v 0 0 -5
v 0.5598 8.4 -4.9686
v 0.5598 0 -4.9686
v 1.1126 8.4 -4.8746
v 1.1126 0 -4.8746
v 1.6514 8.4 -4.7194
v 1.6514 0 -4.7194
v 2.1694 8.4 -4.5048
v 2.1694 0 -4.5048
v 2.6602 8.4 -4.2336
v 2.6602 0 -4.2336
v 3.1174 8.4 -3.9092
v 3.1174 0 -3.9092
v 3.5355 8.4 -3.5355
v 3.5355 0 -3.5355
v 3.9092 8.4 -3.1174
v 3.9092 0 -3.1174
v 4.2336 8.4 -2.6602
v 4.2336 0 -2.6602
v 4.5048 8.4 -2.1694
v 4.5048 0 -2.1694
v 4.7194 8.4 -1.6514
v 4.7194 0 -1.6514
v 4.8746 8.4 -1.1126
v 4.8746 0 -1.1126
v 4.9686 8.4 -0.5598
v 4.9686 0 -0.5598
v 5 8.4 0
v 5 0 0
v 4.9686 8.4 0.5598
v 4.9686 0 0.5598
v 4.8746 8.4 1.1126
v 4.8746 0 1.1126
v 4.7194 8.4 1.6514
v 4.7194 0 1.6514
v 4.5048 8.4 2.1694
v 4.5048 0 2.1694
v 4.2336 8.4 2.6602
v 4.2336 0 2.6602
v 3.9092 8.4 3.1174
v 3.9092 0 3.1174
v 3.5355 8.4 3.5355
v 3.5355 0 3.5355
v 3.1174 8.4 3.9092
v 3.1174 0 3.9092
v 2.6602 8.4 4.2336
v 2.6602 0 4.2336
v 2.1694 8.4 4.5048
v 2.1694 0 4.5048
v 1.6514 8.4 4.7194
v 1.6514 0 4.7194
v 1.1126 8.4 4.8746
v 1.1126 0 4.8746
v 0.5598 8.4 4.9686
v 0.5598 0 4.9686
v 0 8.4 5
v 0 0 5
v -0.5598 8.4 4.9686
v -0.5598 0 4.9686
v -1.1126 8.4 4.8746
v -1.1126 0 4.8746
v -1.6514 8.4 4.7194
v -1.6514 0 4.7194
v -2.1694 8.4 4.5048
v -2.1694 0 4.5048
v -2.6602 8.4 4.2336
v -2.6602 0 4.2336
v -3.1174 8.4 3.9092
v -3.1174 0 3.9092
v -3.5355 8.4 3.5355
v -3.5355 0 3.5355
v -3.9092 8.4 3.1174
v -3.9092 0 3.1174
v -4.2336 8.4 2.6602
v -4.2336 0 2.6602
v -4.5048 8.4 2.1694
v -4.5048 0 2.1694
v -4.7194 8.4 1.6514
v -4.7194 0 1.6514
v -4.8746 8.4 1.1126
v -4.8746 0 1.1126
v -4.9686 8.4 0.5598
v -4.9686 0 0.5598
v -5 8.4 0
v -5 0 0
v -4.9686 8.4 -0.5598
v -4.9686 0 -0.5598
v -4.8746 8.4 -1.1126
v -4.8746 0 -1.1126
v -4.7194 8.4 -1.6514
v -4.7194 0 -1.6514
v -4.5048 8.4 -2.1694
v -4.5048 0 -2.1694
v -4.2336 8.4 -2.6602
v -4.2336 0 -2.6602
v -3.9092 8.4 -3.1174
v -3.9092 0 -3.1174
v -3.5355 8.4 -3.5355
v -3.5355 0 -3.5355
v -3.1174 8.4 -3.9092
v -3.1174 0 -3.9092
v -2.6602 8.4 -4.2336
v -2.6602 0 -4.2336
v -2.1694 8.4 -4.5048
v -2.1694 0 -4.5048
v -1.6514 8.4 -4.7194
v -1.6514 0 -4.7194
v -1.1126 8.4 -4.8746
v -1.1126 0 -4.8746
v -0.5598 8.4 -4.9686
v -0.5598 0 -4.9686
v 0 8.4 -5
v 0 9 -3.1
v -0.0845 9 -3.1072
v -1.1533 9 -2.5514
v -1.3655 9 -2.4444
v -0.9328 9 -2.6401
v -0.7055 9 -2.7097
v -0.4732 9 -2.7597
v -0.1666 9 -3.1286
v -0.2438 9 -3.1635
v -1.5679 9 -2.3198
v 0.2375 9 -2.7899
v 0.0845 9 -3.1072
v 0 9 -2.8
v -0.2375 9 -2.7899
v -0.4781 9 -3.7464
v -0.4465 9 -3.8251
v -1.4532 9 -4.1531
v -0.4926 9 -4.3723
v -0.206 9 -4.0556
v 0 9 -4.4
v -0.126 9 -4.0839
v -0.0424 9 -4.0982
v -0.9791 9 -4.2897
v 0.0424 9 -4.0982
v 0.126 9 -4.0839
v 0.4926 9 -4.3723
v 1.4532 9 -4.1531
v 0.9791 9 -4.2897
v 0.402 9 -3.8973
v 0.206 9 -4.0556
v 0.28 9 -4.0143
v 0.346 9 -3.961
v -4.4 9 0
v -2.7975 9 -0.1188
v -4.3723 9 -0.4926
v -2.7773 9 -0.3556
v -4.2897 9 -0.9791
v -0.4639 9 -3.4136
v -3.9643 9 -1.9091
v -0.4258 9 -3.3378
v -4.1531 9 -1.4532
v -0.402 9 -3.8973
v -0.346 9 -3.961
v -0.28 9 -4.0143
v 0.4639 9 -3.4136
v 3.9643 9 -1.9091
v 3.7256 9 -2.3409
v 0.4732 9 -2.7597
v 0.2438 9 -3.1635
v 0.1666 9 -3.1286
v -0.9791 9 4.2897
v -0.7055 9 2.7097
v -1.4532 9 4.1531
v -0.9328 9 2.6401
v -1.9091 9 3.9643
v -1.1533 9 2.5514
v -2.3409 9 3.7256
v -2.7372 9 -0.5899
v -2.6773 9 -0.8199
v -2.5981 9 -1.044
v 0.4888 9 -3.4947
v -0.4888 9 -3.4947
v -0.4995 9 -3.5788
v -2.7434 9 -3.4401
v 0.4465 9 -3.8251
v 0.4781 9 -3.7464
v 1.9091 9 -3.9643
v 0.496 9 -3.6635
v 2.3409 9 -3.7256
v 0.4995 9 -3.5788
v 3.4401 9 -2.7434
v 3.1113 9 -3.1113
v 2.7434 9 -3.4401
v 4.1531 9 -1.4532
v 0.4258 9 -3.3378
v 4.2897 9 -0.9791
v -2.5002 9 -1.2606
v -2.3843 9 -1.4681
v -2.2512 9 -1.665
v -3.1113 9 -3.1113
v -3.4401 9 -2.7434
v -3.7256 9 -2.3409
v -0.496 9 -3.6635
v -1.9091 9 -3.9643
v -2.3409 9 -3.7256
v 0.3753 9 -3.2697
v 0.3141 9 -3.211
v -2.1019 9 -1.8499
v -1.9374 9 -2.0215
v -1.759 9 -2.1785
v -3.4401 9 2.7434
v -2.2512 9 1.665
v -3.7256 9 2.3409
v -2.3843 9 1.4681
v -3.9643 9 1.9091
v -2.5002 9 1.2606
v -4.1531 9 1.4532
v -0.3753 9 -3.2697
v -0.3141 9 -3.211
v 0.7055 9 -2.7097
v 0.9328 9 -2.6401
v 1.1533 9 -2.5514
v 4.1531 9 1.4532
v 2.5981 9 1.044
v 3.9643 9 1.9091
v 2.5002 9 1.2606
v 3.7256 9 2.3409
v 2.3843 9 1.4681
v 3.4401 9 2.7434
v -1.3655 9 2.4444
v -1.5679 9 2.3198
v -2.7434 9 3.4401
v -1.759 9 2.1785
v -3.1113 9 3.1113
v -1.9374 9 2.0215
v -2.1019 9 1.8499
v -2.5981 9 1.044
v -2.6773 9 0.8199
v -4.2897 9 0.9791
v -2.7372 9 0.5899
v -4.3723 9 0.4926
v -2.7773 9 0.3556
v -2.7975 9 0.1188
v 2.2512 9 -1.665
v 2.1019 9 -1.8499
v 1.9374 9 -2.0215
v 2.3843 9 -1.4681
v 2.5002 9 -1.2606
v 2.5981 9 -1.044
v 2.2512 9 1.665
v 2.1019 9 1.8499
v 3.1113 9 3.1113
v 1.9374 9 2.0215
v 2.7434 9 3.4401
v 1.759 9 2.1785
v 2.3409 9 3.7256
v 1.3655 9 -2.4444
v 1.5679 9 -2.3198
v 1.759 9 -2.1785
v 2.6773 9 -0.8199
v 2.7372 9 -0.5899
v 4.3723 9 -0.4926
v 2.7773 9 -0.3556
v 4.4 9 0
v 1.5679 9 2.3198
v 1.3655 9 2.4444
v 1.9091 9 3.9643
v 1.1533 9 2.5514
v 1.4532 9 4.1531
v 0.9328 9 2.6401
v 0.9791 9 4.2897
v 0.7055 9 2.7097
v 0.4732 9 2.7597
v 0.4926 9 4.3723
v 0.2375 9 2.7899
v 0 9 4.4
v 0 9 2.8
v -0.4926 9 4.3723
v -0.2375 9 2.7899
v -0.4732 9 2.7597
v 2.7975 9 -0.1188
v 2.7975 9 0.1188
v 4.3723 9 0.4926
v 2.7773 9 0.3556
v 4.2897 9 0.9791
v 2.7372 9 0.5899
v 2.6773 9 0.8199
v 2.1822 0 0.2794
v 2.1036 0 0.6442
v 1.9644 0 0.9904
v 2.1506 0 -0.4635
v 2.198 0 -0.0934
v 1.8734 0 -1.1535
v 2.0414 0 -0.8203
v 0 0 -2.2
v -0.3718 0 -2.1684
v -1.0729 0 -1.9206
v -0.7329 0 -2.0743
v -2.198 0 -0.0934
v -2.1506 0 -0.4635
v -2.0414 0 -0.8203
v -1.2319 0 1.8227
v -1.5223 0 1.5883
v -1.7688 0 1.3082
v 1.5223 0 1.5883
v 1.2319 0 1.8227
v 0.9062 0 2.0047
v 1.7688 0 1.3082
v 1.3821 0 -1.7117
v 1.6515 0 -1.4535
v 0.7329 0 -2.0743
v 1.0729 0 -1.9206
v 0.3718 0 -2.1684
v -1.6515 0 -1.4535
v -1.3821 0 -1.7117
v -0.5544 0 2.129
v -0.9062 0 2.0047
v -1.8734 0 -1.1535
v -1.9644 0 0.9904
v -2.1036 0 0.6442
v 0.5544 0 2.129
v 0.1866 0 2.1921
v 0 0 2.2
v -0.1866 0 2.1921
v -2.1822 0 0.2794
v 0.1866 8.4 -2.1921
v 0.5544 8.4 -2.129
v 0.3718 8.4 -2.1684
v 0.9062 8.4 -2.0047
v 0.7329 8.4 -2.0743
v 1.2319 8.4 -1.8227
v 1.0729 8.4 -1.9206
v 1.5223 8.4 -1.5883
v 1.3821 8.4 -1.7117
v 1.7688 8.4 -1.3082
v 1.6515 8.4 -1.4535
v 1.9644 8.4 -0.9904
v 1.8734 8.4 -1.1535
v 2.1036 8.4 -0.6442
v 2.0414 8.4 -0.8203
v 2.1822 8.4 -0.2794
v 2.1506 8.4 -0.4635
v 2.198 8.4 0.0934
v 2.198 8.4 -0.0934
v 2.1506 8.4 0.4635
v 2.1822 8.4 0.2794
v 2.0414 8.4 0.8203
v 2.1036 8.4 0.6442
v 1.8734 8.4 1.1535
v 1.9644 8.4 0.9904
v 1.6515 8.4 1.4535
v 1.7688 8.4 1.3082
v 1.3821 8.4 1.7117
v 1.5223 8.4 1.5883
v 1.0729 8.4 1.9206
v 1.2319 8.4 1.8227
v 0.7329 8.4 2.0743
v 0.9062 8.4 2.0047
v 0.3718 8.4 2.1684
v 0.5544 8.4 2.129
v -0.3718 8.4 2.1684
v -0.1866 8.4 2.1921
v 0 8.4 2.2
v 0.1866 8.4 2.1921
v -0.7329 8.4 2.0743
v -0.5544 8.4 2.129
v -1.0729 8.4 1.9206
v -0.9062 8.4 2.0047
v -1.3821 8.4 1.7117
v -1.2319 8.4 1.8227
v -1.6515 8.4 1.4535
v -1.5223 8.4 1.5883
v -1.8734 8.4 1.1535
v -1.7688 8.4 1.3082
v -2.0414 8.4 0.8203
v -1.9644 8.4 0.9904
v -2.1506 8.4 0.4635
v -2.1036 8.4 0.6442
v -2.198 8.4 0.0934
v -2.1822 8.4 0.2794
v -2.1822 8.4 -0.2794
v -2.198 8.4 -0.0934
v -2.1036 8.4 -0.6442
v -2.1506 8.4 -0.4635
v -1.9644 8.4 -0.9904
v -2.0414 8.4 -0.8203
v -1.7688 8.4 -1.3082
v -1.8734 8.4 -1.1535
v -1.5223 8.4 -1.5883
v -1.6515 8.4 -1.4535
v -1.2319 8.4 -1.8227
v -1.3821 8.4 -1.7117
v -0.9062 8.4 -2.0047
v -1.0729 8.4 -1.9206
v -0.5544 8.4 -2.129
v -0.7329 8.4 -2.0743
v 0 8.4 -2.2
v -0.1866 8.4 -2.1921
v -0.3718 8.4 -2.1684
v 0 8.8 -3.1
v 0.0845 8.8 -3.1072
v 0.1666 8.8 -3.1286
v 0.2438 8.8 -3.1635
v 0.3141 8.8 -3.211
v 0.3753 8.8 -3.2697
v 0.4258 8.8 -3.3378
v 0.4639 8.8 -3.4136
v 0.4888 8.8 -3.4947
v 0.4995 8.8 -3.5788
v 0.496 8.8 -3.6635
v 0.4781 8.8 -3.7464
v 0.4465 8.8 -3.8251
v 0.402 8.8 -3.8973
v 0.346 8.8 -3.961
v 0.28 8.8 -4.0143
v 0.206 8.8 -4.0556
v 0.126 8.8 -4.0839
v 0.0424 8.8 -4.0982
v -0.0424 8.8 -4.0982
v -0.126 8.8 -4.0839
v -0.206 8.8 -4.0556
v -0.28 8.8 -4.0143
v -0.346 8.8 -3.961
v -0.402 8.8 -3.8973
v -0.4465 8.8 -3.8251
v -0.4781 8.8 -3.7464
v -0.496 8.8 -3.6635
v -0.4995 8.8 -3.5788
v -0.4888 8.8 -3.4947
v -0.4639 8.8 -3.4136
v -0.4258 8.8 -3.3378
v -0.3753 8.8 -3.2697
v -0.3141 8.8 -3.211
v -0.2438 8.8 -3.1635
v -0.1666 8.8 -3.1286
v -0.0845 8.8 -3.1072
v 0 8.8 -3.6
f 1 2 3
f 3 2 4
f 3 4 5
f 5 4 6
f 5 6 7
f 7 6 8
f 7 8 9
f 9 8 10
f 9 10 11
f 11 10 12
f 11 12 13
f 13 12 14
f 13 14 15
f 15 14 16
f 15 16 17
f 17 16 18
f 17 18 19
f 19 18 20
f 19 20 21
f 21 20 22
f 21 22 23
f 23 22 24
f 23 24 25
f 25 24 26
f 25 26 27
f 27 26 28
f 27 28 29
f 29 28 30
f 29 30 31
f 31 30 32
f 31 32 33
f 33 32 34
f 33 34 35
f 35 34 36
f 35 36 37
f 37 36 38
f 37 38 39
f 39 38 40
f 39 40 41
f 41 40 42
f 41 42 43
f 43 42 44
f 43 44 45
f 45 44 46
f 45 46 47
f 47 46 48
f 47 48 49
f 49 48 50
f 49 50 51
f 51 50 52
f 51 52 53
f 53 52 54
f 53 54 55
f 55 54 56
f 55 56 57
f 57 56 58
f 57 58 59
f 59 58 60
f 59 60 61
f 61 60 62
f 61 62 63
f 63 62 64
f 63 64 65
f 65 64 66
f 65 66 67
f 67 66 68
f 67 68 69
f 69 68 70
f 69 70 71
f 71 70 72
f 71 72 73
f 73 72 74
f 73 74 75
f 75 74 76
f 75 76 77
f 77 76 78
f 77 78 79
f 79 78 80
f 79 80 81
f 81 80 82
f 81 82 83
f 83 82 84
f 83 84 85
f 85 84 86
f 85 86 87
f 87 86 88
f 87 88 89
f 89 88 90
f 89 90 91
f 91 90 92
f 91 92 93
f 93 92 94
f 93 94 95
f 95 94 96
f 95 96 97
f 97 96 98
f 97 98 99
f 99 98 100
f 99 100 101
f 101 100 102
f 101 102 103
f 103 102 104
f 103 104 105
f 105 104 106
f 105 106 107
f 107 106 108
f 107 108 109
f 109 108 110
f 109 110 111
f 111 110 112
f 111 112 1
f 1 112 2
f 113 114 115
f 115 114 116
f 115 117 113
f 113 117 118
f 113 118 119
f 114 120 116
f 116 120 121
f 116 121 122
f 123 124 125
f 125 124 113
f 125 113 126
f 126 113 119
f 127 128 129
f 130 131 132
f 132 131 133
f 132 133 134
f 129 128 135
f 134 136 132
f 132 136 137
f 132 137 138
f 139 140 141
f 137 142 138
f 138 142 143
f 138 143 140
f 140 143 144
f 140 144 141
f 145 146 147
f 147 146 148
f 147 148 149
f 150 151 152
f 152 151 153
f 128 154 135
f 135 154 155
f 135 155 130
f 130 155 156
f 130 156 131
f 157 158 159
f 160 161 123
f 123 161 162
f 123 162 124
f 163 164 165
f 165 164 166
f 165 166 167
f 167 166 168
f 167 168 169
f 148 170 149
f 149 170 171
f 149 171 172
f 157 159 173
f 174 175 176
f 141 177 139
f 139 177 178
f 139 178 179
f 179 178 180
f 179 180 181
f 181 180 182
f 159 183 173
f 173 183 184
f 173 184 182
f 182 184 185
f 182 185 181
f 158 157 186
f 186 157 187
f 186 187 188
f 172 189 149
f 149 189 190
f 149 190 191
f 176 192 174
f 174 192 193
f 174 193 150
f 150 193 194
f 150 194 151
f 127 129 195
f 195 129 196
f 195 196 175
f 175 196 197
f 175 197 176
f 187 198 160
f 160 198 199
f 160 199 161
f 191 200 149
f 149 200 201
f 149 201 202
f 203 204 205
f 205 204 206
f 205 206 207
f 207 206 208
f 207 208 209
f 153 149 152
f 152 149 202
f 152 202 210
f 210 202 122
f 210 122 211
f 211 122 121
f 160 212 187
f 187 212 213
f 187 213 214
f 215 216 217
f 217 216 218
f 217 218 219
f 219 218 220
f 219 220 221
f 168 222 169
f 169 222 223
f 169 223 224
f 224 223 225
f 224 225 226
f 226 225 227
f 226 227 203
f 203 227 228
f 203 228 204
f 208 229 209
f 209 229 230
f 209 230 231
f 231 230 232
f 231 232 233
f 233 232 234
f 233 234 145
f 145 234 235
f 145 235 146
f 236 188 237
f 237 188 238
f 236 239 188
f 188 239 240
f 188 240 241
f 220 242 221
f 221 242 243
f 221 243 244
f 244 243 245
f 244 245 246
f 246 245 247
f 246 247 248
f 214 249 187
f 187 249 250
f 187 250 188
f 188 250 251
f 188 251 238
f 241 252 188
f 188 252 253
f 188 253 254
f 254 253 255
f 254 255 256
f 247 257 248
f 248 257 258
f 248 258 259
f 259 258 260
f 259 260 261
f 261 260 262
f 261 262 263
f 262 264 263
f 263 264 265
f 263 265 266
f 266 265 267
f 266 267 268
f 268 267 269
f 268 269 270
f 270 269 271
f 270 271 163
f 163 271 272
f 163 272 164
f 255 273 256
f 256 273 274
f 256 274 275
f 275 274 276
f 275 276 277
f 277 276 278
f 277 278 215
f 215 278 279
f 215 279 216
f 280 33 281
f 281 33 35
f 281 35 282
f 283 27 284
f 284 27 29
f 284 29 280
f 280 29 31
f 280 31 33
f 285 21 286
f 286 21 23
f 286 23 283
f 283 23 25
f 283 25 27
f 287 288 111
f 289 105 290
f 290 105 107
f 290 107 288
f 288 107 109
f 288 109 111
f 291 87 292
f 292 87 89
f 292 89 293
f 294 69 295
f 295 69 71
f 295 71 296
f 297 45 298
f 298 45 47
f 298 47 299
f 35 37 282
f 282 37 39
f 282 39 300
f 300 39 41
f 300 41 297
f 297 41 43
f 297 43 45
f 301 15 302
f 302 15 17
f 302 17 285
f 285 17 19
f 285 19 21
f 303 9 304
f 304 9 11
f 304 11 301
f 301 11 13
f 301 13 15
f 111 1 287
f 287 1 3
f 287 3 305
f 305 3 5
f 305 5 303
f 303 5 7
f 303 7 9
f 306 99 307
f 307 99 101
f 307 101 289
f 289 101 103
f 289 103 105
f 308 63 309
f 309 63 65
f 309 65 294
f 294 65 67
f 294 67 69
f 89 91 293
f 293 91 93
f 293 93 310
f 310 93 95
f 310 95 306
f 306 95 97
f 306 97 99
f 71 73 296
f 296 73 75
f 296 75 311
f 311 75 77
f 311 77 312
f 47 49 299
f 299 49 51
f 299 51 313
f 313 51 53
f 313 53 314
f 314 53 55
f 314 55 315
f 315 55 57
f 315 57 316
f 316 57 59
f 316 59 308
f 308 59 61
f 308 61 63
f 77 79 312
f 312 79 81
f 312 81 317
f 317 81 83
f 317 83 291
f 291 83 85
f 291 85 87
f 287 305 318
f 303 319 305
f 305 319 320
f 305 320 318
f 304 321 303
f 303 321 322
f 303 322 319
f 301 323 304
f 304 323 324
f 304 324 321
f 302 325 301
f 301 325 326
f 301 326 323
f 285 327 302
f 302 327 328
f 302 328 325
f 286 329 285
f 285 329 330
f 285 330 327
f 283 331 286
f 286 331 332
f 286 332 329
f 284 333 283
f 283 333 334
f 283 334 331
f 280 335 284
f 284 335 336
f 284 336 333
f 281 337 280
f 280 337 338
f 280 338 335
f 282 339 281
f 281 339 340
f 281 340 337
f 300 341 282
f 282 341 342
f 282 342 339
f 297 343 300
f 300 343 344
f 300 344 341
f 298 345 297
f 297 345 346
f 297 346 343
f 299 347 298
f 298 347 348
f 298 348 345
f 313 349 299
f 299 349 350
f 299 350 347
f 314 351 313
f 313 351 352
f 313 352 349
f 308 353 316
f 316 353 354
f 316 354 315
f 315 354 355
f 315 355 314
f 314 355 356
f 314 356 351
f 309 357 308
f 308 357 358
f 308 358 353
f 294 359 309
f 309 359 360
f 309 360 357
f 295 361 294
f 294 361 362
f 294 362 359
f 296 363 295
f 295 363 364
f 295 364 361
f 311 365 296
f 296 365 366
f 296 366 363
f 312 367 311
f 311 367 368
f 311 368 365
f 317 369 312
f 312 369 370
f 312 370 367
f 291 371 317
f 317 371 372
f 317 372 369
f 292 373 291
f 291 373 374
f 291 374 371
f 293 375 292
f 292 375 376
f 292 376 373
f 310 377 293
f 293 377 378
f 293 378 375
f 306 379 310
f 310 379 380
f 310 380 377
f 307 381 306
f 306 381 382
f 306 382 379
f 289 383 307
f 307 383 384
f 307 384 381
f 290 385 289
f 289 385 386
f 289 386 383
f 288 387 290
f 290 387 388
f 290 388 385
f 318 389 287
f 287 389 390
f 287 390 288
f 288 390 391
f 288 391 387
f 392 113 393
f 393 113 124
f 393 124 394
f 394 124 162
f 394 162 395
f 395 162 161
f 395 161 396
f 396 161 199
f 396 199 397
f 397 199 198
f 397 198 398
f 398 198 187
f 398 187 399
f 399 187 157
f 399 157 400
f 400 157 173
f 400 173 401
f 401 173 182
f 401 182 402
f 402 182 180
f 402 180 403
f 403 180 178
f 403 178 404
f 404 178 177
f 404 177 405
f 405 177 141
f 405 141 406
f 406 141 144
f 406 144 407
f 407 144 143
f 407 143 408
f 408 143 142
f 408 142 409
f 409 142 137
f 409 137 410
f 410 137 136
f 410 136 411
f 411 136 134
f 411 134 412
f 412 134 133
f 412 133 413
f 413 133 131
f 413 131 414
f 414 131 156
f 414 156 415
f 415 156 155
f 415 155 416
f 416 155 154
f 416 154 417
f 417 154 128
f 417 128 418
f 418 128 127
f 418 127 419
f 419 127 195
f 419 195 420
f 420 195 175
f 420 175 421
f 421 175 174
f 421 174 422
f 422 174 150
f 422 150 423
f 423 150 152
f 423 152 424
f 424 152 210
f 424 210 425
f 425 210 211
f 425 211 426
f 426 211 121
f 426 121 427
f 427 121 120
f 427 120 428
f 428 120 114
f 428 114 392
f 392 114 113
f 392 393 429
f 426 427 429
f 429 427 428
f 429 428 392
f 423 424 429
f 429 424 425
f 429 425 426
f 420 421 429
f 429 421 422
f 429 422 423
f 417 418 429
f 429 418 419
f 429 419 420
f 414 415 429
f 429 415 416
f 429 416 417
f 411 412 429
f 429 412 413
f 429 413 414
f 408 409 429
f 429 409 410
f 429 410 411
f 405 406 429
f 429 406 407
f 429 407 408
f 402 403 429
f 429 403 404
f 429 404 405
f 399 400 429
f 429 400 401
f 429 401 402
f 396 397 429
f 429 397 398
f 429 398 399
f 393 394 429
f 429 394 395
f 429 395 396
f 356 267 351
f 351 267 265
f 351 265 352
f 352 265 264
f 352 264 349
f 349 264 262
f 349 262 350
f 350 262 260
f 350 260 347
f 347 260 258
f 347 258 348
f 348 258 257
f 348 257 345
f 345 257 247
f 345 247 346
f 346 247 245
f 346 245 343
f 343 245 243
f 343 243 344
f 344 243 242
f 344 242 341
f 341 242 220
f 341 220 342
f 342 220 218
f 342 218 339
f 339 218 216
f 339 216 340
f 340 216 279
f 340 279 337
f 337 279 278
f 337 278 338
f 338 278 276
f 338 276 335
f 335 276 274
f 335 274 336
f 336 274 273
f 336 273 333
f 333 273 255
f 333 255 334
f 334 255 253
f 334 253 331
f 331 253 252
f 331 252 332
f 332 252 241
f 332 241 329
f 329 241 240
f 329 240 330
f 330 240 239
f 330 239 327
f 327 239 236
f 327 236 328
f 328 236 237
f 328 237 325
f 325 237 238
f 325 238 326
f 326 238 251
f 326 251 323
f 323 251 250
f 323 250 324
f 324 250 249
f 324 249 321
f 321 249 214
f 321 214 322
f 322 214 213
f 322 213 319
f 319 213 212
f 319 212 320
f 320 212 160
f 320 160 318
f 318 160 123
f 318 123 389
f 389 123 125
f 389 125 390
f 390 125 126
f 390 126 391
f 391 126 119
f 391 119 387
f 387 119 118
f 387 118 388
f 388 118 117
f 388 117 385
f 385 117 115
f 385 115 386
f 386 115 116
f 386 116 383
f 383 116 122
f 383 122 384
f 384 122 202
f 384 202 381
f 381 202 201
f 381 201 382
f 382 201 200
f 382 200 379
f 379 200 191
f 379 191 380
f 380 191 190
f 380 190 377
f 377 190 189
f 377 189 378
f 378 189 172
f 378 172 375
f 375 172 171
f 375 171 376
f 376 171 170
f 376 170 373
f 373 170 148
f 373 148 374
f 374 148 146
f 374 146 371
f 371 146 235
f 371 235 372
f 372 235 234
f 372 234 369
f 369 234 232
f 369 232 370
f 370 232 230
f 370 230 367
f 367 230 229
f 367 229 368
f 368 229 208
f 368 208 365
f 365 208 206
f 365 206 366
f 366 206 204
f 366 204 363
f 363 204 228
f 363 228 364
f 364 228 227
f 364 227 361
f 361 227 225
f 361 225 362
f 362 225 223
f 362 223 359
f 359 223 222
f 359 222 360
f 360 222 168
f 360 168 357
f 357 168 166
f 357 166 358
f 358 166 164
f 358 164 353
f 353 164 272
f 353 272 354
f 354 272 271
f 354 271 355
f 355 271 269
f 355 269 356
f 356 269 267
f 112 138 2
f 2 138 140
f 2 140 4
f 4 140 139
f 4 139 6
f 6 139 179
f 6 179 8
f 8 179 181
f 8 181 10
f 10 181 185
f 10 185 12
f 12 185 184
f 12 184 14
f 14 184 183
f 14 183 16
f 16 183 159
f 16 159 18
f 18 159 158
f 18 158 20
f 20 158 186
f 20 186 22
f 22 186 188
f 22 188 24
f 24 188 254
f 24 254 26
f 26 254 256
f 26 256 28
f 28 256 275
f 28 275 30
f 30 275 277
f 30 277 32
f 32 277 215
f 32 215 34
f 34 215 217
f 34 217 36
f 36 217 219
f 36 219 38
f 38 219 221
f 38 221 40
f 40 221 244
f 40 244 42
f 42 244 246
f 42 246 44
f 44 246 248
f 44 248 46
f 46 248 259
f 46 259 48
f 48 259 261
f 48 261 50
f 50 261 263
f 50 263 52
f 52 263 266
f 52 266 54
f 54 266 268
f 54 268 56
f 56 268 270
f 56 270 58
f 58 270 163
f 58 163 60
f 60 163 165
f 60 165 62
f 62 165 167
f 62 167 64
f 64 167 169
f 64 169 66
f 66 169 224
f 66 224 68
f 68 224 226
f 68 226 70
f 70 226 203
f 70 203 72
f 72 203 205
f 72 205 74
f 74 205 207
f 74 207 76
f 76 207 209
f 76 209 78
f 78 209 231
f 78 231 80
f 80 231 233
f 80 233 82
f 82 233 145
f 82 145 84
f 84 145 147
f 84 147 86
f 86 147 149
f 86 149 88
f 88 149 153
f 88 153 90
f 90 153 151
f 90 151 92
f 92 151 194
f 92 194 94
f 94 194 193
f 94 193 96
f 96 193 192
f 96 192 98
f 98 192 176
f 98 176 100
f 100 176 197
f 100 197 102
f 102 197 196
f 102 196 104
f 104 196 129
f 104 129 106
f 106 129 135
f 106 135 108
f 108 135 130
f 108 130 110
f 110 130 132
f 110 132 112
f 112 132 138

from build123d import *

# Parameters (mm, degrees)
SKETCH_1_R          = 5
EXTRUDE_1_DEPTH     = 9
SKETCH_2_R          = 2.2
CUT_EXTRUDE_1_DEPTH = 10
SKETCH_3_R          = 0.5
CUT_EXTRUDE_2_DEPTH = 0.2
CHAMFER_1_SIZE      = 0.6


with BuildPart() as part:
    # ｽｹｯﾁ1 → ﾎﾞｽ - 押し出し1 (new body)
    with BuildSketch(Plane(origin=(0, 0, 0), x_dir=(1, 0, 0), z_dir=(0, 1, 0))):
        Circle(SKETCH_1_R)
    extrude(amount=EXTRUDE_1_DEPTH)

    # ｽｹｯﾁ2 → ｶｯﾄ - 押し出し1 (cut, through all)
    with BuildSketch(Plane(origin=(0, 0, 0), x_dir=(1, 0, 0), z_dir=(0, 1, 0))):
        Circle(SKETCH_2_R)
    extrude(amount=CUT_EXTRUDE_1_DEPTH, mode=Mode.SUBTRACT)

    # ｽｹｯﾁ3 → ｶｯﾄ - 押し出し2 (cut)
    with BuildSketch(Plane(origin=(0, 9, 0), x_dir=(1, 0, 0), z_dir=(0, 1, 0))):
        with Locations((0, 3.6)):
            Circle(SKETCH_3_R)
    extrude(amount=-CUT_EXTRUDE_2_DEPTH, mode=Mode.SUBTRACT)

    # 面取り1
    chamfer_1_edges = [part.edges().sort_by_distance(p)[0] for p in [
        (-5, 9, 0),
        (-2.2, 9, 0),
    ]]
    chamfer(chamfer_1_edges, length=CHAMFER_1_SIZE)


solid = part.part
